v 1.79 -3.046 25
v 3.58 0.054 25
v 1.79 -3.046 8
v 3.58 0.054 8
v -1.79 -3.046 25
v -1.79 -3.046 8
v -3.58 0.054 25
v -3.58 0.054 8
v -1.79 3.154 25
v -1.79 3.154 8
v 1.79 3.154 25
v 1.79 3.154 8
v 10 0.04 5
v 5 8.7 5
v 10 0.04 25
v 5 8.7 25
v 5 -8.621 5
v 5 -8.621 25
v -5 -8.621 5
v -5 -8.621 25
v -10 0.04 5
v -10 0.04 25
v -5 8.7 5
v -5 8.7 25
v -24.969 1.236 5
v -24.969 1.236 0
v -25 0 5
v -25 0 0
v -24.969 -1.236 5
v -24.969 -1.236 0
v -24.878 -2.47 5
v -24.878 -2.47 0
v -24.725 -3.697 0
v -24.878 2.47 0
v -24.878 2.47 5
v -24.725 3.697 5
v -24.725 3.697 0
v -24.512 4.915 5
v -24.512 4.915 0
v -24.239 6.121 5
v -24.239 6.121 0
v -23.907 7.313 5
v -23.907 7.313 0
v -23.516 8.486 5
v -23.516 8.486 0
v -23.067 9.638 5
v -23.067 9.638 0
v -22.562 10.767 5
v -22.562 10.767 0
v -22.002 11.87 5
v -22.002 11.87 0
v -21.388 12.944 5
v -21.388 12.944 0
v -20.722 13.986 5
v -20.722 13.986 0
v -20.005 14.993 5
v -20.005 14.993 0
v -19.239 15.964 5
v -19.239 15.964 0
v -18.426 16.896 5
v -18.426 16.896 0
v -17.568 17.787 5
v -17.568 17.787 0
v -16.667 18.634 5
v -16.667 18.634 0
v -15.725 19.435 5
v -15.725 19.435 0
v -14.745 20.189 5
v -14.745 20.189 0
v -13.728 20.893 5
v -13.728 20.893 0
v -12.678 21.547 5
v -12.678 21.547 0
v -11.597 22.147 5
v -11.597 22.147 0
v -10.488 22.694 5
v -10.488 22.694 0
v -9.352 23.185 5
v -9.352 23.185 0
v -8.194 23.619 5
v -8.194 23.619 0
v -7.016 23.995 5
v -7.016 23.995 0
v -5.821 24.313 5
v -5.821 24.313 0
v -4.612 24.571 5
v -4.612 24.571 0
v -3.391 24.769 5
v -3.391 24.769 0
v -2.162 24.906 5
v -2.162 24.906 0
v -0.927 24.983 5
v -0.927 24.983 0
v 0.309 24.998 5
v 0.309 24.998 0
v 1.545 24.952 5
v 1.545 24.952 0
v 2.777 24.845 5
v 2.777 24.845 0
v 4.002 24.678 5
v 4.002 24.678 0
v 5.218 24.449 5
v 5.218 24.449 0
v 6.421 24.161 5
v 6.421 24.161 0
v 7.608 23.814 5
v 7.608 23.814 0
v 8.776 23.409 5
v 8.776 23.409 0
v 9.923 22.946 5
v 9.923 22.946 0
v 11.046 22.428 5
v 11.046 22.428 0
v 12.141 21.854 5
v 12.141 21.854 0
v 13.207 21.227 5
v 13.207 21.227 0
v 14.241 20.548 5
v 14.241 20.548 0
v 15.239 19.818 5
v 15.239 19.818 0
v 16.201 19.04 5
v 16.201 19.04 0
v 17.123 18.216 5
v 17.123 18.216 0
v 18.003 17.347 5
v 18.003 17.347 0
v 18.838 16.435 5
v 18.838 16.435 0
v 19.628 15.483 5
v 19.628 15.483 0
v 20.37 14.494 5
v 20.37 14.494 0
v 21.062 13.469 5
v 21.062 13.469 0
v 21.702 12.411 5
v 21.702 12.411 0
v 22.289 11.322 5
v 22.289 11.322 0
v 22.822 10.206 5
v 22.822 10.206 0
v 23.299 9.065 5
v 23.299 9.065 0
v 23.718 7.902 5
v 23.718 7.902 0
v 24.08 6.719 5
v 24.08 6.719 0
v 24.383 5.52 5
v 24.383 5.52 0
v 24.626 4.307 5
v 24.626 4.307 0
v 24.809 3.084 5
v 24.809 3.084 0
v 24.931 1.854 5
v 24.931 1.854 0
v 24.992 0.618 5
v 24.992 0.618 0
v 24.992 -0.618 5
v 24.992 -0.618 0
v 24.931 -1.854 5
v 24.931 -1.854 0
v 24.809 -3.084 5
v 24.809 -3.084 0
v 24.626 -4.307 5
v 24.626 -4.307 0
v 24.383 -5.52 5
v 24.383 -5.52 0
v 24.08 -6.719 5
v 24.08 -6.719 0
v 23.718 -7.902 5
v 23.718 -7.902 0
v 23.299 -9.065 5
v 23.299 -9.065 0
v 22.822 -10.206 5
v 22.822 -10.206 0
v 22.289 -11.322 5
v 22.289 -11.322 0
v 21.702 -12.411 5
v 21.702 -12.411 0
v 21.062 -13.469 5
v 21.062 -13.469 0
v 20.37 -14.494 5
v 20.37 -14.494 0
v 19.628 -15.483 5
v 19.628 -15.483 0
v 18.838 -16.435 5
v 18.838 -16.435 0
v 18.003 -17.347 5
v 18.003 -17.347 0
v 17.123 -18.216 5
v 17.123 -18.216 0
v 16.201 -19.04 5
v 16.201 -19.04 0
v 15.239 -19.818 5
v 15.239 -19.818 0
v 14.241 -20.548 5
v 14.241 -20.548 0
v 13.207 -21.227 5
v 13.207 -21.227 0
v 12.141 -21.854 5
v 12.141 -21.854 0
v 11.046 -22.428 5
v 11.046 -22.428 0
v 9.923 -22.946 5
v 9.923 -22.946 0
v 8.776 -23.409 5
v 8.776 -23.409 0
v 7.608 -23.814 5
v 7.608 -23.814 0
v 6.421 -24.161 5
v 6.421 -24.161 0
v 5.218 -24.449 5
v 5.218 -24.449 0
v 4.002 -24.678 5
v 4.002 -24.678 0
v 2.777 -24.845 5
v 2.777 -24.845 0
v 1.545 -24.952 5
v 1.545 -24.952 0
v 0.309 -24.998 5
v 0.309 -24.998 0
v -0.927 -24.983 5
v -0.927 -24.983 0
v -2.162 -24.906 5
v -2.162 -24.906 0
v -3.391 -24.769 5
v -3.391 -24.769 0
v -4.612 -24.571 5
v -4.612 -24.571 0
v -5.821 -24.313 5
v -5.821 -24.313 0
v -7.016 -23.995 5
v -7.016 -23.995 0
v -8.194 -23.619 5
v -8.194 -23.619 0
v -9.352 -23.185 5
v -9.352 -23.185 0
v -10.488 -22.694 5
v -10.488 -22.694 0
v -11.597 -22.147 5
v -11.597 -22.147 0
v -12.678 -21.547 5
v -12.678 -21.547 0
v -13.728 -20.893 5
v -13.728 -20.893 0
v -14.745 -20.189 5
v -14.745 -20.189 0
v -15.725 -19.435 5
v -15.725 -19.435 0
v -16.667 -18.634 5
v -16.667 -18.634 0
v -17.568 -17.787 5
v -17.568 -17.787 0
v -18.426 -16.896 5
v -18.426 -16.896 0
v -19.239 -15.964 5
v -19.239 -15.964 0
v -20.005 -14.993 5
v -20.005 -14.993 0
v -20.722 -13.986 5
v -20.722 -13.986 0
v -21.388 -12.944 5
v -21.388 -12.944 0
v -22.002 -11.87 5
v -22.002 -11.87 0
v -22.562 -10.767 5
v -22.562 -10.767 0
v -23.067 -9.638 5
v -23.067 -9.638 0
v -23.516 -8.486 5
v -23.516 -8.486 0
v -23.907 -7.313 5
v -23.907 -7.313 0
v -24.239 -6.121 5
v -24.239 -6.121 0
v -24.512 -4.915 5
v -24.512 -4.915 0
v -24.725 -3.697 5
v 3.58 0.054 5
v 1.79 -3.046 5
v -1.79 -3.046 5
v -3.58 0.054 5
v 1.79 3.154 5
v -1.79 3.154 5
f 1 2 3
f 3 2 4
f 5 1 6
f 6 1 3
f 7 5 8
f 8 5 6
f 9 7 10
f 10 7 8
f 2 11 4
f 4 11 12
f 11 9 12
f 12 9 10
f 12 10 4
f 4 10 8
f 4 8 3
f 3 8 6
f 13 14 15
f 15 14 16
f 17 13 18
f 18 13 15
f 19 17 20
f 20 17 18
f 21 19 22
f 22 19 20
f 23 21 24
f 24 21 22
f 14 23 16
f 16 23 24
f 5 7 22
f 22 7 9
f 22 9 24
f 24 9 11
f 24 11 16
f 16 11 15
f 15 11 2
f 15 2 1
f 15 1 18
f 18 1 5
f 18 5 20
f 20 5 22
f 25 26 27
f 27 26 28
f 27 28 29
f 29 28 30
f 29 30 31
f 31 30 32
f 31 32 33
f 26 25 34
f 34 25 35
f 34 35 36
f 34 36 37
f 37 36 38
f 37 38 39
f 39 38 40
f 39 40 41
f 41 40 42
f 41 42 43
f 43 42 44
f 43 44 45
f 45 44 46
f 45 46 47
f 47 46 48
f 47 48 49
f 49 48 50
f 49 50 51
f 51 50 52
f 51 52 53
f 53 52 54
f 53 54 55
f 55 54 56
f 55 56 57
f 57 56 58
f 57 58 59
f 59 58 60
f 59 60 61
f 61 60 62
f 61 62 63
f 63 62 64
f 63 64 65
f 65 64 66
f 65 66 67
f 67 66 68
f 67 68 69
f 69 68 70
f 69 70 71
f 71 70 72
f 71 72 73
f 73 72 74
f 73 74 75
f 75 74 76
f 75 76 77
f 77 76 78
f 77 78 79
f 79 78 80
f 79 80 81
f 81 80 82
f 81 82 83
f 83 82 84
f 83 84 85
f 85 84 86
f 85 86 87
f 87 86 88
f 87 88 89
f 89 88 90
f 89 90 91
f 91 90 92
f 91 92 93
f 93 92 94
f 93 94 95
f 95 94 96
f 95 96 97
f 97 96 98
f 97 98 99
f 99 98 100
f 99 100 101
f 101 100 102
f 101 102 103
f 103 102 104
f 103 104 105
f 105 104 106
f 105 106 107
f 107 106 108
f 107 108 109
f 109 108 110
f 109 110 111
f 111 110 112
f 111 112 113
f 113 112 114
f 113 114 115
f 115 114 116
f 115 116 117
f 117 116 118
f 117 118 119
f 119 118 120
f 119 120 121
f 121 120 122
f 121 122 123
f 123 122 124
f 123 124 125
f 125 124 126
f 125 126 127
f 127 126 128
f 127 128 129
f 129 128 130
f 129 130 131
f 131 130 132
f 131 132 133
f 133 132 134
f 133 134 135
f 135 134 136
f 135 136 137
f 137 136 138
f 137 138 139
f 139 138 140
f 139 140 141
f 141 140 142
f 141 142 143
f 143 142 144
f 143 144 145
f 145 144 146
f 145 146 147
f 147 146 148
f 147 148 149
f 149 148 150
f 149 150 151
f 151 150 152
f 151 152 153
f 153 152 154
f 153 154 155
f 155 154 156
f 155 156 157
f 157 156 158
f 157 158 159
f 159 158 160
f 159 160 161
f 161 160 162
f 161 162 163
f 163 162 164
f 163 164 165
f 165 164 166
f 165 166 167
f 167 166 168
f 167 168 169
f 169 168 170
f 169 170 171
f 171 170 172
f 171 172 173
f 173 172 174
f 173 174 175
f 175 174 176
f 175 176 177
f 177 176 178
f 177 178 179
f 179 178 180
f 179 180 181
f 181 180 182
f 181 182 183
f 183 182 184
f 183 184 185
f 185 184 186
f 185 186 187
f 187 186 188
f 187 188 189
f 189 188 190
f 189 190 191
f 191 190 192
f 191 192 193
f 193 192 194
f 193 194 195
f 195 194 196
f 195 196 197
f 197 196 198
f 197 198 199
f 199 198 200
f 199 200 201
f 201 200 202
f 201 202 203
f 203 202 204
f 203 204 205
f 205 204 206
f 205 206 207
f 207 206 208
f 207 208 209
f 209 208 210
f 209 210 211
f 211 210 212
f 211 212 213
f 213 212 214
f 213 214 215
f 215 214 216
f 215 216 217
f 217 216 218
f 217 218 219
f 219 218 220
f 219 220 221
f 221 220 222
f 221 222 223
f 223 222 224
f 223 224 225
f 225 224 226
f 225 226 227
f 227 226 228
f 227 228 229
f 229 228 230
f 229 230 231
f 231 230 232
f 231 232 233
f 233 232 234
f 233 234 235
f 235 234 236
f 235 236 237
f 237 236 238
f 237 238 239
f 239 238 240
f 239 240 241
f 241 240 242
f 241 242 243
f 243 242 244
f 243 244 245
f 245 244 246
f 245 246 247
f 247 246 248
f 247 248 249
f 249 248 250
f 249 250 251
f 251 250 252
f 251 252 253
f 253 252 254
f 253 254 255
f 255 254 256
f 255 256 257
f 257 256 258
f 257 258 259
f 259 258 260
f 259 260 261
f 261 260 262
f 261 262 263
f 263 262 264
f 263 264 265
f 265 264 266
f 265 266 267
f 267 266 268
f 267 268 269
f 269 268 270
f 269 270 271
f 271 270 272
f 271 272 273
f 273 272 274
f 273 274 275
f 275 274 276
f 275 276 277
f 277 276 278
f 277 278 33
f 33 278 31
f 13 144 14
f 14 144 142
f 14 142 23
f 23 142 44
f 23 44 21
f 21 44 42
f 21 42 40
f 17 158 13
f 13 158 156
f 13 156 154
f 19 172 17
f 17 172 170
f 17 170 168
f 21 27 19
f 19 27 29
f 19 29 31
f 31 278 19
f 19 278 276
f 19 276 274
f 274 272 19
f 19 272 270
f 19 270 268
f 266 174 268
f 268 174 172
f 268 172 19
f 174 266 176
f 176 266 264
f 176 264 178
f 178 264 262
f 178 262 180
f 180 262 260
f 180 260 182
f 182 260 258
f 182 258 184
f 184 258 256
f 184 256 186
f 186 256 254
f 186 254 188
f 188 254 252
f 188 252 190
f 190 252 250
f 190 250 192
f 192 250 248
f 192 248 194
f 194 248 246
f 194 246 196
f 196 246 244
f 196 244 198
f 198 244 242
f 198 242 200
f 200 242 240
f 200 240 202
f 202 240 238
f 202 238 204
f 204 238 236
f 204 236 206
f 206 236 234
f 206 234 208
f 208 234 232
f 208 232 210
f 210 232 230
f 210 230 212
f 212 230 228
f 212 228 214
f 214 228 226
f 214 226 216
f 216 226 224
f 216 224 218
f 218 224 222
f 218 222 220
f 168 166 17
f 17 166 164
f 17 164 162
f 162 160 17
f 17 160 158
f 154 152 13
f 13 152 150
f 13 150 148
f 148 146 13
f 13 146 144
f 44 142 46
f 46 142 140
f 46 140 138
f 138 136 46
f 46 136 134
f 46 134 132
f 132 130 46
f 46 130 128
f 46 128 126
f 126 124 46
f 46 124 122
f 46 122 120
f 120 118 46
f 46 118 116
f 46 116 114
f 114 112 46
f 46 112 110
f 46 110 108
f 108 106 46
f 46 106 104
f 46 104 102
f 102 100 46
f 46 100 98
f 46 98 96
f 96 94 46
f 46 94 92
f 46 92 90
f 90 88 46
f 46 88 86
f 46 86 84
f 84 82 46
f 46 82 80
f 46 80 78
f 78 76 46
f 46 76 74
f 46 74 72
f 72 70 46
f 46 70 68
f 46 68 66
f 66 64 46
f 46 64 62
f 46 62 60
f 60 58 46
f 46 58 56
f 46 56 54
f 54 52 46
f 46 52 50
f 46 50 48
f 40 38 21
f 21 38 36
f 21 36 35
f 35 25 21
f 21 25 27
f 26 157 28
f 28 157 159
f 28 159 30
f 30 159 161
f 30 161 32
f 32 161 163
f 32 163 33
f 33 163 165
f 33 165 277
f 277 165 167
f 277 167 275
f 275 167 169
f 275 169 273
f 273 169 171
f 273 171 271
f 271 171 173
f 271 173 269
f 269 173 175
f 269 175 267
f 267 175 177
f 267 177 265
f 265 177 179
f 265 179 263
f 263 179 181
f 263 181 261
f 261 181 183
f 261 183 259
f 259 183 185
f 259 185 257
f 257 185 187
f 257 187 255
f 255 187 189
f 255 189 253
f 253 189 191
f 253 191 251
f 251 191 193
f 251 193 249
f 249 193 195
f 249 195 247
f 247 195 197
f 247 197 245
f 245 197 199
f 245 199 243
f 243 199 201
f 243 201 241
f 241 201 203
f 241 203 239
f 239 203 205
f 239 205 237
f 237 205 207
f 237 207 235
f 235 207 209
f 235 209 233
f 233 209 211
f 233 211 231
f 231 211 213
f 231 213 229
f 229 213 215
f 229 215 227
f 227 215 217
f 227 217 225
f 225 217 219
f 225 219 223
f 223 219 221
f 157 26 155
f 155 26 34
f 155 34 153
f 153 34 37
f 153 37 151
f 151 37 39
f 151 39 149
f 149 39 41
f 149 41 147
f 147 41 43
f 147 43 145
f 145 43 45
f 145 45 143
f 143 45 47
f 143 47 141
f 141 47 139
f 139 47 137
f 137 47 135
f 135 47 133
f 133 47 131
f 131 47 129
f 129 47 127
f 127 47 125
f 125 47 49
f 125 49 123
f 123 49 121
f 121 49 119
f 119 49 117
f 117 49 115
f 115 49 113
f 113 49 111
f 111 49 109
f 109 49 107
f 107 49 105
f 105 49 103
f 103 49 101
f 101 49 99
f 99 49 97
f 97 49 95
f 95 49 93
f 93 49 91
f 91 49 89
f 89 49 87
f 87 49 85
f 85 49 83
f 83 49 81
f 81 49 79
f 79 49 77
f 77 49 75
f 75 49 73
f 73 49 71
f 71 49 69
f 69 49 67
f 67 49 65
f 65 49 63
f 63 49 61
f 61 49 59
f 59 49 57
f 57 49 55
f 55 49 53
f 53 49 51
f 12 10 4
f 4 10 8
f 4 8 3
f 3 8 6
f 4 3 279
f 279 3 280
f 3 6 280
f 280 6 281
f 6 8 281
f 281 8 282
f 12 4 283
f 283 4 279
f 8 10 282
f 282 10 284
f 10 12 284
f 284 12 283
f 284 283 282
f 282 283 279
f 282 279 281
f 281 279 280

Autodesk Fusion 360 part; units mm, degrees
sketch "Sketch1" plane through (0, 0, 0) normal (0, 0, 1) x (1, 0, 0)
  circle A0 centre (0, 0) radius 25
  dimension "d1" = 50
extrude "Extrude1" add sketch "Sketch1" along normal blind 5 makes body 1
sketch "Sketch2" plane through (0, 0, 5) normal (0, 0, 1) x (-1, 0, 0)
  circle A0 centre (0, 0) radius 25
  line L0 (5, -8.7) -> (10, -0.0397)
  line L1 (10, -0.0397) -> (5, 8.6205)
  line L2 (5, 8.6205) -> (-5, 8.6205)
  line L3 (-5, 8.6205) -> (-10, -0.0397)
  line L4 (-10, -0.0397) -> (-5, -8.7)
  line L5 (-5, -8.7) -> (5, -8.7)
  point P0 (0, -0.0397)
extrude "Extrude2" add sketch "Sketch2" along normal blind 20 contours L0 L1 L2 L3 L4 L5 bodies 1
sketch "Sketch3" plane through (0, 0, 5) normal (0, 0, 1) x (-1, 0, 0)
  line L0 (1.7898, -3.1538) -> (3.5796, -0.0538)
  line L1 (3.5796, -0.0538) -> (1.7898, 3.0462)
  line L2 (1.7898, 3.0462) -> (-1.7898, 3.0462)
  line L3 (-1.7898, 3.0462) -> (-3.5796, -0.0538)
  line L4 (-3.5796, -0.0538) -> (-1.7898, -3.1538)
  line L5 (-1.7898, -3.1538) -> (1.7898, -3.1538)
  point P0 (0, -0.0538)
  dimension "d6" = 6.2
extrude "Extrude3" add sketch "Sketch3" along normal blind 14 separate body makes body 2
extrude "Extrude4" add 1 faces at (-0.5966, -0.9795, 19) along direction (0, 0, 1) blind 8 on bodies 2 bodies 2
extrude "Extrude5" cut 1 faces at (-0.5966, -0.9795, 27) along direction (0, 0, -1) blind 19 on bodies 2 bodies 1 2
